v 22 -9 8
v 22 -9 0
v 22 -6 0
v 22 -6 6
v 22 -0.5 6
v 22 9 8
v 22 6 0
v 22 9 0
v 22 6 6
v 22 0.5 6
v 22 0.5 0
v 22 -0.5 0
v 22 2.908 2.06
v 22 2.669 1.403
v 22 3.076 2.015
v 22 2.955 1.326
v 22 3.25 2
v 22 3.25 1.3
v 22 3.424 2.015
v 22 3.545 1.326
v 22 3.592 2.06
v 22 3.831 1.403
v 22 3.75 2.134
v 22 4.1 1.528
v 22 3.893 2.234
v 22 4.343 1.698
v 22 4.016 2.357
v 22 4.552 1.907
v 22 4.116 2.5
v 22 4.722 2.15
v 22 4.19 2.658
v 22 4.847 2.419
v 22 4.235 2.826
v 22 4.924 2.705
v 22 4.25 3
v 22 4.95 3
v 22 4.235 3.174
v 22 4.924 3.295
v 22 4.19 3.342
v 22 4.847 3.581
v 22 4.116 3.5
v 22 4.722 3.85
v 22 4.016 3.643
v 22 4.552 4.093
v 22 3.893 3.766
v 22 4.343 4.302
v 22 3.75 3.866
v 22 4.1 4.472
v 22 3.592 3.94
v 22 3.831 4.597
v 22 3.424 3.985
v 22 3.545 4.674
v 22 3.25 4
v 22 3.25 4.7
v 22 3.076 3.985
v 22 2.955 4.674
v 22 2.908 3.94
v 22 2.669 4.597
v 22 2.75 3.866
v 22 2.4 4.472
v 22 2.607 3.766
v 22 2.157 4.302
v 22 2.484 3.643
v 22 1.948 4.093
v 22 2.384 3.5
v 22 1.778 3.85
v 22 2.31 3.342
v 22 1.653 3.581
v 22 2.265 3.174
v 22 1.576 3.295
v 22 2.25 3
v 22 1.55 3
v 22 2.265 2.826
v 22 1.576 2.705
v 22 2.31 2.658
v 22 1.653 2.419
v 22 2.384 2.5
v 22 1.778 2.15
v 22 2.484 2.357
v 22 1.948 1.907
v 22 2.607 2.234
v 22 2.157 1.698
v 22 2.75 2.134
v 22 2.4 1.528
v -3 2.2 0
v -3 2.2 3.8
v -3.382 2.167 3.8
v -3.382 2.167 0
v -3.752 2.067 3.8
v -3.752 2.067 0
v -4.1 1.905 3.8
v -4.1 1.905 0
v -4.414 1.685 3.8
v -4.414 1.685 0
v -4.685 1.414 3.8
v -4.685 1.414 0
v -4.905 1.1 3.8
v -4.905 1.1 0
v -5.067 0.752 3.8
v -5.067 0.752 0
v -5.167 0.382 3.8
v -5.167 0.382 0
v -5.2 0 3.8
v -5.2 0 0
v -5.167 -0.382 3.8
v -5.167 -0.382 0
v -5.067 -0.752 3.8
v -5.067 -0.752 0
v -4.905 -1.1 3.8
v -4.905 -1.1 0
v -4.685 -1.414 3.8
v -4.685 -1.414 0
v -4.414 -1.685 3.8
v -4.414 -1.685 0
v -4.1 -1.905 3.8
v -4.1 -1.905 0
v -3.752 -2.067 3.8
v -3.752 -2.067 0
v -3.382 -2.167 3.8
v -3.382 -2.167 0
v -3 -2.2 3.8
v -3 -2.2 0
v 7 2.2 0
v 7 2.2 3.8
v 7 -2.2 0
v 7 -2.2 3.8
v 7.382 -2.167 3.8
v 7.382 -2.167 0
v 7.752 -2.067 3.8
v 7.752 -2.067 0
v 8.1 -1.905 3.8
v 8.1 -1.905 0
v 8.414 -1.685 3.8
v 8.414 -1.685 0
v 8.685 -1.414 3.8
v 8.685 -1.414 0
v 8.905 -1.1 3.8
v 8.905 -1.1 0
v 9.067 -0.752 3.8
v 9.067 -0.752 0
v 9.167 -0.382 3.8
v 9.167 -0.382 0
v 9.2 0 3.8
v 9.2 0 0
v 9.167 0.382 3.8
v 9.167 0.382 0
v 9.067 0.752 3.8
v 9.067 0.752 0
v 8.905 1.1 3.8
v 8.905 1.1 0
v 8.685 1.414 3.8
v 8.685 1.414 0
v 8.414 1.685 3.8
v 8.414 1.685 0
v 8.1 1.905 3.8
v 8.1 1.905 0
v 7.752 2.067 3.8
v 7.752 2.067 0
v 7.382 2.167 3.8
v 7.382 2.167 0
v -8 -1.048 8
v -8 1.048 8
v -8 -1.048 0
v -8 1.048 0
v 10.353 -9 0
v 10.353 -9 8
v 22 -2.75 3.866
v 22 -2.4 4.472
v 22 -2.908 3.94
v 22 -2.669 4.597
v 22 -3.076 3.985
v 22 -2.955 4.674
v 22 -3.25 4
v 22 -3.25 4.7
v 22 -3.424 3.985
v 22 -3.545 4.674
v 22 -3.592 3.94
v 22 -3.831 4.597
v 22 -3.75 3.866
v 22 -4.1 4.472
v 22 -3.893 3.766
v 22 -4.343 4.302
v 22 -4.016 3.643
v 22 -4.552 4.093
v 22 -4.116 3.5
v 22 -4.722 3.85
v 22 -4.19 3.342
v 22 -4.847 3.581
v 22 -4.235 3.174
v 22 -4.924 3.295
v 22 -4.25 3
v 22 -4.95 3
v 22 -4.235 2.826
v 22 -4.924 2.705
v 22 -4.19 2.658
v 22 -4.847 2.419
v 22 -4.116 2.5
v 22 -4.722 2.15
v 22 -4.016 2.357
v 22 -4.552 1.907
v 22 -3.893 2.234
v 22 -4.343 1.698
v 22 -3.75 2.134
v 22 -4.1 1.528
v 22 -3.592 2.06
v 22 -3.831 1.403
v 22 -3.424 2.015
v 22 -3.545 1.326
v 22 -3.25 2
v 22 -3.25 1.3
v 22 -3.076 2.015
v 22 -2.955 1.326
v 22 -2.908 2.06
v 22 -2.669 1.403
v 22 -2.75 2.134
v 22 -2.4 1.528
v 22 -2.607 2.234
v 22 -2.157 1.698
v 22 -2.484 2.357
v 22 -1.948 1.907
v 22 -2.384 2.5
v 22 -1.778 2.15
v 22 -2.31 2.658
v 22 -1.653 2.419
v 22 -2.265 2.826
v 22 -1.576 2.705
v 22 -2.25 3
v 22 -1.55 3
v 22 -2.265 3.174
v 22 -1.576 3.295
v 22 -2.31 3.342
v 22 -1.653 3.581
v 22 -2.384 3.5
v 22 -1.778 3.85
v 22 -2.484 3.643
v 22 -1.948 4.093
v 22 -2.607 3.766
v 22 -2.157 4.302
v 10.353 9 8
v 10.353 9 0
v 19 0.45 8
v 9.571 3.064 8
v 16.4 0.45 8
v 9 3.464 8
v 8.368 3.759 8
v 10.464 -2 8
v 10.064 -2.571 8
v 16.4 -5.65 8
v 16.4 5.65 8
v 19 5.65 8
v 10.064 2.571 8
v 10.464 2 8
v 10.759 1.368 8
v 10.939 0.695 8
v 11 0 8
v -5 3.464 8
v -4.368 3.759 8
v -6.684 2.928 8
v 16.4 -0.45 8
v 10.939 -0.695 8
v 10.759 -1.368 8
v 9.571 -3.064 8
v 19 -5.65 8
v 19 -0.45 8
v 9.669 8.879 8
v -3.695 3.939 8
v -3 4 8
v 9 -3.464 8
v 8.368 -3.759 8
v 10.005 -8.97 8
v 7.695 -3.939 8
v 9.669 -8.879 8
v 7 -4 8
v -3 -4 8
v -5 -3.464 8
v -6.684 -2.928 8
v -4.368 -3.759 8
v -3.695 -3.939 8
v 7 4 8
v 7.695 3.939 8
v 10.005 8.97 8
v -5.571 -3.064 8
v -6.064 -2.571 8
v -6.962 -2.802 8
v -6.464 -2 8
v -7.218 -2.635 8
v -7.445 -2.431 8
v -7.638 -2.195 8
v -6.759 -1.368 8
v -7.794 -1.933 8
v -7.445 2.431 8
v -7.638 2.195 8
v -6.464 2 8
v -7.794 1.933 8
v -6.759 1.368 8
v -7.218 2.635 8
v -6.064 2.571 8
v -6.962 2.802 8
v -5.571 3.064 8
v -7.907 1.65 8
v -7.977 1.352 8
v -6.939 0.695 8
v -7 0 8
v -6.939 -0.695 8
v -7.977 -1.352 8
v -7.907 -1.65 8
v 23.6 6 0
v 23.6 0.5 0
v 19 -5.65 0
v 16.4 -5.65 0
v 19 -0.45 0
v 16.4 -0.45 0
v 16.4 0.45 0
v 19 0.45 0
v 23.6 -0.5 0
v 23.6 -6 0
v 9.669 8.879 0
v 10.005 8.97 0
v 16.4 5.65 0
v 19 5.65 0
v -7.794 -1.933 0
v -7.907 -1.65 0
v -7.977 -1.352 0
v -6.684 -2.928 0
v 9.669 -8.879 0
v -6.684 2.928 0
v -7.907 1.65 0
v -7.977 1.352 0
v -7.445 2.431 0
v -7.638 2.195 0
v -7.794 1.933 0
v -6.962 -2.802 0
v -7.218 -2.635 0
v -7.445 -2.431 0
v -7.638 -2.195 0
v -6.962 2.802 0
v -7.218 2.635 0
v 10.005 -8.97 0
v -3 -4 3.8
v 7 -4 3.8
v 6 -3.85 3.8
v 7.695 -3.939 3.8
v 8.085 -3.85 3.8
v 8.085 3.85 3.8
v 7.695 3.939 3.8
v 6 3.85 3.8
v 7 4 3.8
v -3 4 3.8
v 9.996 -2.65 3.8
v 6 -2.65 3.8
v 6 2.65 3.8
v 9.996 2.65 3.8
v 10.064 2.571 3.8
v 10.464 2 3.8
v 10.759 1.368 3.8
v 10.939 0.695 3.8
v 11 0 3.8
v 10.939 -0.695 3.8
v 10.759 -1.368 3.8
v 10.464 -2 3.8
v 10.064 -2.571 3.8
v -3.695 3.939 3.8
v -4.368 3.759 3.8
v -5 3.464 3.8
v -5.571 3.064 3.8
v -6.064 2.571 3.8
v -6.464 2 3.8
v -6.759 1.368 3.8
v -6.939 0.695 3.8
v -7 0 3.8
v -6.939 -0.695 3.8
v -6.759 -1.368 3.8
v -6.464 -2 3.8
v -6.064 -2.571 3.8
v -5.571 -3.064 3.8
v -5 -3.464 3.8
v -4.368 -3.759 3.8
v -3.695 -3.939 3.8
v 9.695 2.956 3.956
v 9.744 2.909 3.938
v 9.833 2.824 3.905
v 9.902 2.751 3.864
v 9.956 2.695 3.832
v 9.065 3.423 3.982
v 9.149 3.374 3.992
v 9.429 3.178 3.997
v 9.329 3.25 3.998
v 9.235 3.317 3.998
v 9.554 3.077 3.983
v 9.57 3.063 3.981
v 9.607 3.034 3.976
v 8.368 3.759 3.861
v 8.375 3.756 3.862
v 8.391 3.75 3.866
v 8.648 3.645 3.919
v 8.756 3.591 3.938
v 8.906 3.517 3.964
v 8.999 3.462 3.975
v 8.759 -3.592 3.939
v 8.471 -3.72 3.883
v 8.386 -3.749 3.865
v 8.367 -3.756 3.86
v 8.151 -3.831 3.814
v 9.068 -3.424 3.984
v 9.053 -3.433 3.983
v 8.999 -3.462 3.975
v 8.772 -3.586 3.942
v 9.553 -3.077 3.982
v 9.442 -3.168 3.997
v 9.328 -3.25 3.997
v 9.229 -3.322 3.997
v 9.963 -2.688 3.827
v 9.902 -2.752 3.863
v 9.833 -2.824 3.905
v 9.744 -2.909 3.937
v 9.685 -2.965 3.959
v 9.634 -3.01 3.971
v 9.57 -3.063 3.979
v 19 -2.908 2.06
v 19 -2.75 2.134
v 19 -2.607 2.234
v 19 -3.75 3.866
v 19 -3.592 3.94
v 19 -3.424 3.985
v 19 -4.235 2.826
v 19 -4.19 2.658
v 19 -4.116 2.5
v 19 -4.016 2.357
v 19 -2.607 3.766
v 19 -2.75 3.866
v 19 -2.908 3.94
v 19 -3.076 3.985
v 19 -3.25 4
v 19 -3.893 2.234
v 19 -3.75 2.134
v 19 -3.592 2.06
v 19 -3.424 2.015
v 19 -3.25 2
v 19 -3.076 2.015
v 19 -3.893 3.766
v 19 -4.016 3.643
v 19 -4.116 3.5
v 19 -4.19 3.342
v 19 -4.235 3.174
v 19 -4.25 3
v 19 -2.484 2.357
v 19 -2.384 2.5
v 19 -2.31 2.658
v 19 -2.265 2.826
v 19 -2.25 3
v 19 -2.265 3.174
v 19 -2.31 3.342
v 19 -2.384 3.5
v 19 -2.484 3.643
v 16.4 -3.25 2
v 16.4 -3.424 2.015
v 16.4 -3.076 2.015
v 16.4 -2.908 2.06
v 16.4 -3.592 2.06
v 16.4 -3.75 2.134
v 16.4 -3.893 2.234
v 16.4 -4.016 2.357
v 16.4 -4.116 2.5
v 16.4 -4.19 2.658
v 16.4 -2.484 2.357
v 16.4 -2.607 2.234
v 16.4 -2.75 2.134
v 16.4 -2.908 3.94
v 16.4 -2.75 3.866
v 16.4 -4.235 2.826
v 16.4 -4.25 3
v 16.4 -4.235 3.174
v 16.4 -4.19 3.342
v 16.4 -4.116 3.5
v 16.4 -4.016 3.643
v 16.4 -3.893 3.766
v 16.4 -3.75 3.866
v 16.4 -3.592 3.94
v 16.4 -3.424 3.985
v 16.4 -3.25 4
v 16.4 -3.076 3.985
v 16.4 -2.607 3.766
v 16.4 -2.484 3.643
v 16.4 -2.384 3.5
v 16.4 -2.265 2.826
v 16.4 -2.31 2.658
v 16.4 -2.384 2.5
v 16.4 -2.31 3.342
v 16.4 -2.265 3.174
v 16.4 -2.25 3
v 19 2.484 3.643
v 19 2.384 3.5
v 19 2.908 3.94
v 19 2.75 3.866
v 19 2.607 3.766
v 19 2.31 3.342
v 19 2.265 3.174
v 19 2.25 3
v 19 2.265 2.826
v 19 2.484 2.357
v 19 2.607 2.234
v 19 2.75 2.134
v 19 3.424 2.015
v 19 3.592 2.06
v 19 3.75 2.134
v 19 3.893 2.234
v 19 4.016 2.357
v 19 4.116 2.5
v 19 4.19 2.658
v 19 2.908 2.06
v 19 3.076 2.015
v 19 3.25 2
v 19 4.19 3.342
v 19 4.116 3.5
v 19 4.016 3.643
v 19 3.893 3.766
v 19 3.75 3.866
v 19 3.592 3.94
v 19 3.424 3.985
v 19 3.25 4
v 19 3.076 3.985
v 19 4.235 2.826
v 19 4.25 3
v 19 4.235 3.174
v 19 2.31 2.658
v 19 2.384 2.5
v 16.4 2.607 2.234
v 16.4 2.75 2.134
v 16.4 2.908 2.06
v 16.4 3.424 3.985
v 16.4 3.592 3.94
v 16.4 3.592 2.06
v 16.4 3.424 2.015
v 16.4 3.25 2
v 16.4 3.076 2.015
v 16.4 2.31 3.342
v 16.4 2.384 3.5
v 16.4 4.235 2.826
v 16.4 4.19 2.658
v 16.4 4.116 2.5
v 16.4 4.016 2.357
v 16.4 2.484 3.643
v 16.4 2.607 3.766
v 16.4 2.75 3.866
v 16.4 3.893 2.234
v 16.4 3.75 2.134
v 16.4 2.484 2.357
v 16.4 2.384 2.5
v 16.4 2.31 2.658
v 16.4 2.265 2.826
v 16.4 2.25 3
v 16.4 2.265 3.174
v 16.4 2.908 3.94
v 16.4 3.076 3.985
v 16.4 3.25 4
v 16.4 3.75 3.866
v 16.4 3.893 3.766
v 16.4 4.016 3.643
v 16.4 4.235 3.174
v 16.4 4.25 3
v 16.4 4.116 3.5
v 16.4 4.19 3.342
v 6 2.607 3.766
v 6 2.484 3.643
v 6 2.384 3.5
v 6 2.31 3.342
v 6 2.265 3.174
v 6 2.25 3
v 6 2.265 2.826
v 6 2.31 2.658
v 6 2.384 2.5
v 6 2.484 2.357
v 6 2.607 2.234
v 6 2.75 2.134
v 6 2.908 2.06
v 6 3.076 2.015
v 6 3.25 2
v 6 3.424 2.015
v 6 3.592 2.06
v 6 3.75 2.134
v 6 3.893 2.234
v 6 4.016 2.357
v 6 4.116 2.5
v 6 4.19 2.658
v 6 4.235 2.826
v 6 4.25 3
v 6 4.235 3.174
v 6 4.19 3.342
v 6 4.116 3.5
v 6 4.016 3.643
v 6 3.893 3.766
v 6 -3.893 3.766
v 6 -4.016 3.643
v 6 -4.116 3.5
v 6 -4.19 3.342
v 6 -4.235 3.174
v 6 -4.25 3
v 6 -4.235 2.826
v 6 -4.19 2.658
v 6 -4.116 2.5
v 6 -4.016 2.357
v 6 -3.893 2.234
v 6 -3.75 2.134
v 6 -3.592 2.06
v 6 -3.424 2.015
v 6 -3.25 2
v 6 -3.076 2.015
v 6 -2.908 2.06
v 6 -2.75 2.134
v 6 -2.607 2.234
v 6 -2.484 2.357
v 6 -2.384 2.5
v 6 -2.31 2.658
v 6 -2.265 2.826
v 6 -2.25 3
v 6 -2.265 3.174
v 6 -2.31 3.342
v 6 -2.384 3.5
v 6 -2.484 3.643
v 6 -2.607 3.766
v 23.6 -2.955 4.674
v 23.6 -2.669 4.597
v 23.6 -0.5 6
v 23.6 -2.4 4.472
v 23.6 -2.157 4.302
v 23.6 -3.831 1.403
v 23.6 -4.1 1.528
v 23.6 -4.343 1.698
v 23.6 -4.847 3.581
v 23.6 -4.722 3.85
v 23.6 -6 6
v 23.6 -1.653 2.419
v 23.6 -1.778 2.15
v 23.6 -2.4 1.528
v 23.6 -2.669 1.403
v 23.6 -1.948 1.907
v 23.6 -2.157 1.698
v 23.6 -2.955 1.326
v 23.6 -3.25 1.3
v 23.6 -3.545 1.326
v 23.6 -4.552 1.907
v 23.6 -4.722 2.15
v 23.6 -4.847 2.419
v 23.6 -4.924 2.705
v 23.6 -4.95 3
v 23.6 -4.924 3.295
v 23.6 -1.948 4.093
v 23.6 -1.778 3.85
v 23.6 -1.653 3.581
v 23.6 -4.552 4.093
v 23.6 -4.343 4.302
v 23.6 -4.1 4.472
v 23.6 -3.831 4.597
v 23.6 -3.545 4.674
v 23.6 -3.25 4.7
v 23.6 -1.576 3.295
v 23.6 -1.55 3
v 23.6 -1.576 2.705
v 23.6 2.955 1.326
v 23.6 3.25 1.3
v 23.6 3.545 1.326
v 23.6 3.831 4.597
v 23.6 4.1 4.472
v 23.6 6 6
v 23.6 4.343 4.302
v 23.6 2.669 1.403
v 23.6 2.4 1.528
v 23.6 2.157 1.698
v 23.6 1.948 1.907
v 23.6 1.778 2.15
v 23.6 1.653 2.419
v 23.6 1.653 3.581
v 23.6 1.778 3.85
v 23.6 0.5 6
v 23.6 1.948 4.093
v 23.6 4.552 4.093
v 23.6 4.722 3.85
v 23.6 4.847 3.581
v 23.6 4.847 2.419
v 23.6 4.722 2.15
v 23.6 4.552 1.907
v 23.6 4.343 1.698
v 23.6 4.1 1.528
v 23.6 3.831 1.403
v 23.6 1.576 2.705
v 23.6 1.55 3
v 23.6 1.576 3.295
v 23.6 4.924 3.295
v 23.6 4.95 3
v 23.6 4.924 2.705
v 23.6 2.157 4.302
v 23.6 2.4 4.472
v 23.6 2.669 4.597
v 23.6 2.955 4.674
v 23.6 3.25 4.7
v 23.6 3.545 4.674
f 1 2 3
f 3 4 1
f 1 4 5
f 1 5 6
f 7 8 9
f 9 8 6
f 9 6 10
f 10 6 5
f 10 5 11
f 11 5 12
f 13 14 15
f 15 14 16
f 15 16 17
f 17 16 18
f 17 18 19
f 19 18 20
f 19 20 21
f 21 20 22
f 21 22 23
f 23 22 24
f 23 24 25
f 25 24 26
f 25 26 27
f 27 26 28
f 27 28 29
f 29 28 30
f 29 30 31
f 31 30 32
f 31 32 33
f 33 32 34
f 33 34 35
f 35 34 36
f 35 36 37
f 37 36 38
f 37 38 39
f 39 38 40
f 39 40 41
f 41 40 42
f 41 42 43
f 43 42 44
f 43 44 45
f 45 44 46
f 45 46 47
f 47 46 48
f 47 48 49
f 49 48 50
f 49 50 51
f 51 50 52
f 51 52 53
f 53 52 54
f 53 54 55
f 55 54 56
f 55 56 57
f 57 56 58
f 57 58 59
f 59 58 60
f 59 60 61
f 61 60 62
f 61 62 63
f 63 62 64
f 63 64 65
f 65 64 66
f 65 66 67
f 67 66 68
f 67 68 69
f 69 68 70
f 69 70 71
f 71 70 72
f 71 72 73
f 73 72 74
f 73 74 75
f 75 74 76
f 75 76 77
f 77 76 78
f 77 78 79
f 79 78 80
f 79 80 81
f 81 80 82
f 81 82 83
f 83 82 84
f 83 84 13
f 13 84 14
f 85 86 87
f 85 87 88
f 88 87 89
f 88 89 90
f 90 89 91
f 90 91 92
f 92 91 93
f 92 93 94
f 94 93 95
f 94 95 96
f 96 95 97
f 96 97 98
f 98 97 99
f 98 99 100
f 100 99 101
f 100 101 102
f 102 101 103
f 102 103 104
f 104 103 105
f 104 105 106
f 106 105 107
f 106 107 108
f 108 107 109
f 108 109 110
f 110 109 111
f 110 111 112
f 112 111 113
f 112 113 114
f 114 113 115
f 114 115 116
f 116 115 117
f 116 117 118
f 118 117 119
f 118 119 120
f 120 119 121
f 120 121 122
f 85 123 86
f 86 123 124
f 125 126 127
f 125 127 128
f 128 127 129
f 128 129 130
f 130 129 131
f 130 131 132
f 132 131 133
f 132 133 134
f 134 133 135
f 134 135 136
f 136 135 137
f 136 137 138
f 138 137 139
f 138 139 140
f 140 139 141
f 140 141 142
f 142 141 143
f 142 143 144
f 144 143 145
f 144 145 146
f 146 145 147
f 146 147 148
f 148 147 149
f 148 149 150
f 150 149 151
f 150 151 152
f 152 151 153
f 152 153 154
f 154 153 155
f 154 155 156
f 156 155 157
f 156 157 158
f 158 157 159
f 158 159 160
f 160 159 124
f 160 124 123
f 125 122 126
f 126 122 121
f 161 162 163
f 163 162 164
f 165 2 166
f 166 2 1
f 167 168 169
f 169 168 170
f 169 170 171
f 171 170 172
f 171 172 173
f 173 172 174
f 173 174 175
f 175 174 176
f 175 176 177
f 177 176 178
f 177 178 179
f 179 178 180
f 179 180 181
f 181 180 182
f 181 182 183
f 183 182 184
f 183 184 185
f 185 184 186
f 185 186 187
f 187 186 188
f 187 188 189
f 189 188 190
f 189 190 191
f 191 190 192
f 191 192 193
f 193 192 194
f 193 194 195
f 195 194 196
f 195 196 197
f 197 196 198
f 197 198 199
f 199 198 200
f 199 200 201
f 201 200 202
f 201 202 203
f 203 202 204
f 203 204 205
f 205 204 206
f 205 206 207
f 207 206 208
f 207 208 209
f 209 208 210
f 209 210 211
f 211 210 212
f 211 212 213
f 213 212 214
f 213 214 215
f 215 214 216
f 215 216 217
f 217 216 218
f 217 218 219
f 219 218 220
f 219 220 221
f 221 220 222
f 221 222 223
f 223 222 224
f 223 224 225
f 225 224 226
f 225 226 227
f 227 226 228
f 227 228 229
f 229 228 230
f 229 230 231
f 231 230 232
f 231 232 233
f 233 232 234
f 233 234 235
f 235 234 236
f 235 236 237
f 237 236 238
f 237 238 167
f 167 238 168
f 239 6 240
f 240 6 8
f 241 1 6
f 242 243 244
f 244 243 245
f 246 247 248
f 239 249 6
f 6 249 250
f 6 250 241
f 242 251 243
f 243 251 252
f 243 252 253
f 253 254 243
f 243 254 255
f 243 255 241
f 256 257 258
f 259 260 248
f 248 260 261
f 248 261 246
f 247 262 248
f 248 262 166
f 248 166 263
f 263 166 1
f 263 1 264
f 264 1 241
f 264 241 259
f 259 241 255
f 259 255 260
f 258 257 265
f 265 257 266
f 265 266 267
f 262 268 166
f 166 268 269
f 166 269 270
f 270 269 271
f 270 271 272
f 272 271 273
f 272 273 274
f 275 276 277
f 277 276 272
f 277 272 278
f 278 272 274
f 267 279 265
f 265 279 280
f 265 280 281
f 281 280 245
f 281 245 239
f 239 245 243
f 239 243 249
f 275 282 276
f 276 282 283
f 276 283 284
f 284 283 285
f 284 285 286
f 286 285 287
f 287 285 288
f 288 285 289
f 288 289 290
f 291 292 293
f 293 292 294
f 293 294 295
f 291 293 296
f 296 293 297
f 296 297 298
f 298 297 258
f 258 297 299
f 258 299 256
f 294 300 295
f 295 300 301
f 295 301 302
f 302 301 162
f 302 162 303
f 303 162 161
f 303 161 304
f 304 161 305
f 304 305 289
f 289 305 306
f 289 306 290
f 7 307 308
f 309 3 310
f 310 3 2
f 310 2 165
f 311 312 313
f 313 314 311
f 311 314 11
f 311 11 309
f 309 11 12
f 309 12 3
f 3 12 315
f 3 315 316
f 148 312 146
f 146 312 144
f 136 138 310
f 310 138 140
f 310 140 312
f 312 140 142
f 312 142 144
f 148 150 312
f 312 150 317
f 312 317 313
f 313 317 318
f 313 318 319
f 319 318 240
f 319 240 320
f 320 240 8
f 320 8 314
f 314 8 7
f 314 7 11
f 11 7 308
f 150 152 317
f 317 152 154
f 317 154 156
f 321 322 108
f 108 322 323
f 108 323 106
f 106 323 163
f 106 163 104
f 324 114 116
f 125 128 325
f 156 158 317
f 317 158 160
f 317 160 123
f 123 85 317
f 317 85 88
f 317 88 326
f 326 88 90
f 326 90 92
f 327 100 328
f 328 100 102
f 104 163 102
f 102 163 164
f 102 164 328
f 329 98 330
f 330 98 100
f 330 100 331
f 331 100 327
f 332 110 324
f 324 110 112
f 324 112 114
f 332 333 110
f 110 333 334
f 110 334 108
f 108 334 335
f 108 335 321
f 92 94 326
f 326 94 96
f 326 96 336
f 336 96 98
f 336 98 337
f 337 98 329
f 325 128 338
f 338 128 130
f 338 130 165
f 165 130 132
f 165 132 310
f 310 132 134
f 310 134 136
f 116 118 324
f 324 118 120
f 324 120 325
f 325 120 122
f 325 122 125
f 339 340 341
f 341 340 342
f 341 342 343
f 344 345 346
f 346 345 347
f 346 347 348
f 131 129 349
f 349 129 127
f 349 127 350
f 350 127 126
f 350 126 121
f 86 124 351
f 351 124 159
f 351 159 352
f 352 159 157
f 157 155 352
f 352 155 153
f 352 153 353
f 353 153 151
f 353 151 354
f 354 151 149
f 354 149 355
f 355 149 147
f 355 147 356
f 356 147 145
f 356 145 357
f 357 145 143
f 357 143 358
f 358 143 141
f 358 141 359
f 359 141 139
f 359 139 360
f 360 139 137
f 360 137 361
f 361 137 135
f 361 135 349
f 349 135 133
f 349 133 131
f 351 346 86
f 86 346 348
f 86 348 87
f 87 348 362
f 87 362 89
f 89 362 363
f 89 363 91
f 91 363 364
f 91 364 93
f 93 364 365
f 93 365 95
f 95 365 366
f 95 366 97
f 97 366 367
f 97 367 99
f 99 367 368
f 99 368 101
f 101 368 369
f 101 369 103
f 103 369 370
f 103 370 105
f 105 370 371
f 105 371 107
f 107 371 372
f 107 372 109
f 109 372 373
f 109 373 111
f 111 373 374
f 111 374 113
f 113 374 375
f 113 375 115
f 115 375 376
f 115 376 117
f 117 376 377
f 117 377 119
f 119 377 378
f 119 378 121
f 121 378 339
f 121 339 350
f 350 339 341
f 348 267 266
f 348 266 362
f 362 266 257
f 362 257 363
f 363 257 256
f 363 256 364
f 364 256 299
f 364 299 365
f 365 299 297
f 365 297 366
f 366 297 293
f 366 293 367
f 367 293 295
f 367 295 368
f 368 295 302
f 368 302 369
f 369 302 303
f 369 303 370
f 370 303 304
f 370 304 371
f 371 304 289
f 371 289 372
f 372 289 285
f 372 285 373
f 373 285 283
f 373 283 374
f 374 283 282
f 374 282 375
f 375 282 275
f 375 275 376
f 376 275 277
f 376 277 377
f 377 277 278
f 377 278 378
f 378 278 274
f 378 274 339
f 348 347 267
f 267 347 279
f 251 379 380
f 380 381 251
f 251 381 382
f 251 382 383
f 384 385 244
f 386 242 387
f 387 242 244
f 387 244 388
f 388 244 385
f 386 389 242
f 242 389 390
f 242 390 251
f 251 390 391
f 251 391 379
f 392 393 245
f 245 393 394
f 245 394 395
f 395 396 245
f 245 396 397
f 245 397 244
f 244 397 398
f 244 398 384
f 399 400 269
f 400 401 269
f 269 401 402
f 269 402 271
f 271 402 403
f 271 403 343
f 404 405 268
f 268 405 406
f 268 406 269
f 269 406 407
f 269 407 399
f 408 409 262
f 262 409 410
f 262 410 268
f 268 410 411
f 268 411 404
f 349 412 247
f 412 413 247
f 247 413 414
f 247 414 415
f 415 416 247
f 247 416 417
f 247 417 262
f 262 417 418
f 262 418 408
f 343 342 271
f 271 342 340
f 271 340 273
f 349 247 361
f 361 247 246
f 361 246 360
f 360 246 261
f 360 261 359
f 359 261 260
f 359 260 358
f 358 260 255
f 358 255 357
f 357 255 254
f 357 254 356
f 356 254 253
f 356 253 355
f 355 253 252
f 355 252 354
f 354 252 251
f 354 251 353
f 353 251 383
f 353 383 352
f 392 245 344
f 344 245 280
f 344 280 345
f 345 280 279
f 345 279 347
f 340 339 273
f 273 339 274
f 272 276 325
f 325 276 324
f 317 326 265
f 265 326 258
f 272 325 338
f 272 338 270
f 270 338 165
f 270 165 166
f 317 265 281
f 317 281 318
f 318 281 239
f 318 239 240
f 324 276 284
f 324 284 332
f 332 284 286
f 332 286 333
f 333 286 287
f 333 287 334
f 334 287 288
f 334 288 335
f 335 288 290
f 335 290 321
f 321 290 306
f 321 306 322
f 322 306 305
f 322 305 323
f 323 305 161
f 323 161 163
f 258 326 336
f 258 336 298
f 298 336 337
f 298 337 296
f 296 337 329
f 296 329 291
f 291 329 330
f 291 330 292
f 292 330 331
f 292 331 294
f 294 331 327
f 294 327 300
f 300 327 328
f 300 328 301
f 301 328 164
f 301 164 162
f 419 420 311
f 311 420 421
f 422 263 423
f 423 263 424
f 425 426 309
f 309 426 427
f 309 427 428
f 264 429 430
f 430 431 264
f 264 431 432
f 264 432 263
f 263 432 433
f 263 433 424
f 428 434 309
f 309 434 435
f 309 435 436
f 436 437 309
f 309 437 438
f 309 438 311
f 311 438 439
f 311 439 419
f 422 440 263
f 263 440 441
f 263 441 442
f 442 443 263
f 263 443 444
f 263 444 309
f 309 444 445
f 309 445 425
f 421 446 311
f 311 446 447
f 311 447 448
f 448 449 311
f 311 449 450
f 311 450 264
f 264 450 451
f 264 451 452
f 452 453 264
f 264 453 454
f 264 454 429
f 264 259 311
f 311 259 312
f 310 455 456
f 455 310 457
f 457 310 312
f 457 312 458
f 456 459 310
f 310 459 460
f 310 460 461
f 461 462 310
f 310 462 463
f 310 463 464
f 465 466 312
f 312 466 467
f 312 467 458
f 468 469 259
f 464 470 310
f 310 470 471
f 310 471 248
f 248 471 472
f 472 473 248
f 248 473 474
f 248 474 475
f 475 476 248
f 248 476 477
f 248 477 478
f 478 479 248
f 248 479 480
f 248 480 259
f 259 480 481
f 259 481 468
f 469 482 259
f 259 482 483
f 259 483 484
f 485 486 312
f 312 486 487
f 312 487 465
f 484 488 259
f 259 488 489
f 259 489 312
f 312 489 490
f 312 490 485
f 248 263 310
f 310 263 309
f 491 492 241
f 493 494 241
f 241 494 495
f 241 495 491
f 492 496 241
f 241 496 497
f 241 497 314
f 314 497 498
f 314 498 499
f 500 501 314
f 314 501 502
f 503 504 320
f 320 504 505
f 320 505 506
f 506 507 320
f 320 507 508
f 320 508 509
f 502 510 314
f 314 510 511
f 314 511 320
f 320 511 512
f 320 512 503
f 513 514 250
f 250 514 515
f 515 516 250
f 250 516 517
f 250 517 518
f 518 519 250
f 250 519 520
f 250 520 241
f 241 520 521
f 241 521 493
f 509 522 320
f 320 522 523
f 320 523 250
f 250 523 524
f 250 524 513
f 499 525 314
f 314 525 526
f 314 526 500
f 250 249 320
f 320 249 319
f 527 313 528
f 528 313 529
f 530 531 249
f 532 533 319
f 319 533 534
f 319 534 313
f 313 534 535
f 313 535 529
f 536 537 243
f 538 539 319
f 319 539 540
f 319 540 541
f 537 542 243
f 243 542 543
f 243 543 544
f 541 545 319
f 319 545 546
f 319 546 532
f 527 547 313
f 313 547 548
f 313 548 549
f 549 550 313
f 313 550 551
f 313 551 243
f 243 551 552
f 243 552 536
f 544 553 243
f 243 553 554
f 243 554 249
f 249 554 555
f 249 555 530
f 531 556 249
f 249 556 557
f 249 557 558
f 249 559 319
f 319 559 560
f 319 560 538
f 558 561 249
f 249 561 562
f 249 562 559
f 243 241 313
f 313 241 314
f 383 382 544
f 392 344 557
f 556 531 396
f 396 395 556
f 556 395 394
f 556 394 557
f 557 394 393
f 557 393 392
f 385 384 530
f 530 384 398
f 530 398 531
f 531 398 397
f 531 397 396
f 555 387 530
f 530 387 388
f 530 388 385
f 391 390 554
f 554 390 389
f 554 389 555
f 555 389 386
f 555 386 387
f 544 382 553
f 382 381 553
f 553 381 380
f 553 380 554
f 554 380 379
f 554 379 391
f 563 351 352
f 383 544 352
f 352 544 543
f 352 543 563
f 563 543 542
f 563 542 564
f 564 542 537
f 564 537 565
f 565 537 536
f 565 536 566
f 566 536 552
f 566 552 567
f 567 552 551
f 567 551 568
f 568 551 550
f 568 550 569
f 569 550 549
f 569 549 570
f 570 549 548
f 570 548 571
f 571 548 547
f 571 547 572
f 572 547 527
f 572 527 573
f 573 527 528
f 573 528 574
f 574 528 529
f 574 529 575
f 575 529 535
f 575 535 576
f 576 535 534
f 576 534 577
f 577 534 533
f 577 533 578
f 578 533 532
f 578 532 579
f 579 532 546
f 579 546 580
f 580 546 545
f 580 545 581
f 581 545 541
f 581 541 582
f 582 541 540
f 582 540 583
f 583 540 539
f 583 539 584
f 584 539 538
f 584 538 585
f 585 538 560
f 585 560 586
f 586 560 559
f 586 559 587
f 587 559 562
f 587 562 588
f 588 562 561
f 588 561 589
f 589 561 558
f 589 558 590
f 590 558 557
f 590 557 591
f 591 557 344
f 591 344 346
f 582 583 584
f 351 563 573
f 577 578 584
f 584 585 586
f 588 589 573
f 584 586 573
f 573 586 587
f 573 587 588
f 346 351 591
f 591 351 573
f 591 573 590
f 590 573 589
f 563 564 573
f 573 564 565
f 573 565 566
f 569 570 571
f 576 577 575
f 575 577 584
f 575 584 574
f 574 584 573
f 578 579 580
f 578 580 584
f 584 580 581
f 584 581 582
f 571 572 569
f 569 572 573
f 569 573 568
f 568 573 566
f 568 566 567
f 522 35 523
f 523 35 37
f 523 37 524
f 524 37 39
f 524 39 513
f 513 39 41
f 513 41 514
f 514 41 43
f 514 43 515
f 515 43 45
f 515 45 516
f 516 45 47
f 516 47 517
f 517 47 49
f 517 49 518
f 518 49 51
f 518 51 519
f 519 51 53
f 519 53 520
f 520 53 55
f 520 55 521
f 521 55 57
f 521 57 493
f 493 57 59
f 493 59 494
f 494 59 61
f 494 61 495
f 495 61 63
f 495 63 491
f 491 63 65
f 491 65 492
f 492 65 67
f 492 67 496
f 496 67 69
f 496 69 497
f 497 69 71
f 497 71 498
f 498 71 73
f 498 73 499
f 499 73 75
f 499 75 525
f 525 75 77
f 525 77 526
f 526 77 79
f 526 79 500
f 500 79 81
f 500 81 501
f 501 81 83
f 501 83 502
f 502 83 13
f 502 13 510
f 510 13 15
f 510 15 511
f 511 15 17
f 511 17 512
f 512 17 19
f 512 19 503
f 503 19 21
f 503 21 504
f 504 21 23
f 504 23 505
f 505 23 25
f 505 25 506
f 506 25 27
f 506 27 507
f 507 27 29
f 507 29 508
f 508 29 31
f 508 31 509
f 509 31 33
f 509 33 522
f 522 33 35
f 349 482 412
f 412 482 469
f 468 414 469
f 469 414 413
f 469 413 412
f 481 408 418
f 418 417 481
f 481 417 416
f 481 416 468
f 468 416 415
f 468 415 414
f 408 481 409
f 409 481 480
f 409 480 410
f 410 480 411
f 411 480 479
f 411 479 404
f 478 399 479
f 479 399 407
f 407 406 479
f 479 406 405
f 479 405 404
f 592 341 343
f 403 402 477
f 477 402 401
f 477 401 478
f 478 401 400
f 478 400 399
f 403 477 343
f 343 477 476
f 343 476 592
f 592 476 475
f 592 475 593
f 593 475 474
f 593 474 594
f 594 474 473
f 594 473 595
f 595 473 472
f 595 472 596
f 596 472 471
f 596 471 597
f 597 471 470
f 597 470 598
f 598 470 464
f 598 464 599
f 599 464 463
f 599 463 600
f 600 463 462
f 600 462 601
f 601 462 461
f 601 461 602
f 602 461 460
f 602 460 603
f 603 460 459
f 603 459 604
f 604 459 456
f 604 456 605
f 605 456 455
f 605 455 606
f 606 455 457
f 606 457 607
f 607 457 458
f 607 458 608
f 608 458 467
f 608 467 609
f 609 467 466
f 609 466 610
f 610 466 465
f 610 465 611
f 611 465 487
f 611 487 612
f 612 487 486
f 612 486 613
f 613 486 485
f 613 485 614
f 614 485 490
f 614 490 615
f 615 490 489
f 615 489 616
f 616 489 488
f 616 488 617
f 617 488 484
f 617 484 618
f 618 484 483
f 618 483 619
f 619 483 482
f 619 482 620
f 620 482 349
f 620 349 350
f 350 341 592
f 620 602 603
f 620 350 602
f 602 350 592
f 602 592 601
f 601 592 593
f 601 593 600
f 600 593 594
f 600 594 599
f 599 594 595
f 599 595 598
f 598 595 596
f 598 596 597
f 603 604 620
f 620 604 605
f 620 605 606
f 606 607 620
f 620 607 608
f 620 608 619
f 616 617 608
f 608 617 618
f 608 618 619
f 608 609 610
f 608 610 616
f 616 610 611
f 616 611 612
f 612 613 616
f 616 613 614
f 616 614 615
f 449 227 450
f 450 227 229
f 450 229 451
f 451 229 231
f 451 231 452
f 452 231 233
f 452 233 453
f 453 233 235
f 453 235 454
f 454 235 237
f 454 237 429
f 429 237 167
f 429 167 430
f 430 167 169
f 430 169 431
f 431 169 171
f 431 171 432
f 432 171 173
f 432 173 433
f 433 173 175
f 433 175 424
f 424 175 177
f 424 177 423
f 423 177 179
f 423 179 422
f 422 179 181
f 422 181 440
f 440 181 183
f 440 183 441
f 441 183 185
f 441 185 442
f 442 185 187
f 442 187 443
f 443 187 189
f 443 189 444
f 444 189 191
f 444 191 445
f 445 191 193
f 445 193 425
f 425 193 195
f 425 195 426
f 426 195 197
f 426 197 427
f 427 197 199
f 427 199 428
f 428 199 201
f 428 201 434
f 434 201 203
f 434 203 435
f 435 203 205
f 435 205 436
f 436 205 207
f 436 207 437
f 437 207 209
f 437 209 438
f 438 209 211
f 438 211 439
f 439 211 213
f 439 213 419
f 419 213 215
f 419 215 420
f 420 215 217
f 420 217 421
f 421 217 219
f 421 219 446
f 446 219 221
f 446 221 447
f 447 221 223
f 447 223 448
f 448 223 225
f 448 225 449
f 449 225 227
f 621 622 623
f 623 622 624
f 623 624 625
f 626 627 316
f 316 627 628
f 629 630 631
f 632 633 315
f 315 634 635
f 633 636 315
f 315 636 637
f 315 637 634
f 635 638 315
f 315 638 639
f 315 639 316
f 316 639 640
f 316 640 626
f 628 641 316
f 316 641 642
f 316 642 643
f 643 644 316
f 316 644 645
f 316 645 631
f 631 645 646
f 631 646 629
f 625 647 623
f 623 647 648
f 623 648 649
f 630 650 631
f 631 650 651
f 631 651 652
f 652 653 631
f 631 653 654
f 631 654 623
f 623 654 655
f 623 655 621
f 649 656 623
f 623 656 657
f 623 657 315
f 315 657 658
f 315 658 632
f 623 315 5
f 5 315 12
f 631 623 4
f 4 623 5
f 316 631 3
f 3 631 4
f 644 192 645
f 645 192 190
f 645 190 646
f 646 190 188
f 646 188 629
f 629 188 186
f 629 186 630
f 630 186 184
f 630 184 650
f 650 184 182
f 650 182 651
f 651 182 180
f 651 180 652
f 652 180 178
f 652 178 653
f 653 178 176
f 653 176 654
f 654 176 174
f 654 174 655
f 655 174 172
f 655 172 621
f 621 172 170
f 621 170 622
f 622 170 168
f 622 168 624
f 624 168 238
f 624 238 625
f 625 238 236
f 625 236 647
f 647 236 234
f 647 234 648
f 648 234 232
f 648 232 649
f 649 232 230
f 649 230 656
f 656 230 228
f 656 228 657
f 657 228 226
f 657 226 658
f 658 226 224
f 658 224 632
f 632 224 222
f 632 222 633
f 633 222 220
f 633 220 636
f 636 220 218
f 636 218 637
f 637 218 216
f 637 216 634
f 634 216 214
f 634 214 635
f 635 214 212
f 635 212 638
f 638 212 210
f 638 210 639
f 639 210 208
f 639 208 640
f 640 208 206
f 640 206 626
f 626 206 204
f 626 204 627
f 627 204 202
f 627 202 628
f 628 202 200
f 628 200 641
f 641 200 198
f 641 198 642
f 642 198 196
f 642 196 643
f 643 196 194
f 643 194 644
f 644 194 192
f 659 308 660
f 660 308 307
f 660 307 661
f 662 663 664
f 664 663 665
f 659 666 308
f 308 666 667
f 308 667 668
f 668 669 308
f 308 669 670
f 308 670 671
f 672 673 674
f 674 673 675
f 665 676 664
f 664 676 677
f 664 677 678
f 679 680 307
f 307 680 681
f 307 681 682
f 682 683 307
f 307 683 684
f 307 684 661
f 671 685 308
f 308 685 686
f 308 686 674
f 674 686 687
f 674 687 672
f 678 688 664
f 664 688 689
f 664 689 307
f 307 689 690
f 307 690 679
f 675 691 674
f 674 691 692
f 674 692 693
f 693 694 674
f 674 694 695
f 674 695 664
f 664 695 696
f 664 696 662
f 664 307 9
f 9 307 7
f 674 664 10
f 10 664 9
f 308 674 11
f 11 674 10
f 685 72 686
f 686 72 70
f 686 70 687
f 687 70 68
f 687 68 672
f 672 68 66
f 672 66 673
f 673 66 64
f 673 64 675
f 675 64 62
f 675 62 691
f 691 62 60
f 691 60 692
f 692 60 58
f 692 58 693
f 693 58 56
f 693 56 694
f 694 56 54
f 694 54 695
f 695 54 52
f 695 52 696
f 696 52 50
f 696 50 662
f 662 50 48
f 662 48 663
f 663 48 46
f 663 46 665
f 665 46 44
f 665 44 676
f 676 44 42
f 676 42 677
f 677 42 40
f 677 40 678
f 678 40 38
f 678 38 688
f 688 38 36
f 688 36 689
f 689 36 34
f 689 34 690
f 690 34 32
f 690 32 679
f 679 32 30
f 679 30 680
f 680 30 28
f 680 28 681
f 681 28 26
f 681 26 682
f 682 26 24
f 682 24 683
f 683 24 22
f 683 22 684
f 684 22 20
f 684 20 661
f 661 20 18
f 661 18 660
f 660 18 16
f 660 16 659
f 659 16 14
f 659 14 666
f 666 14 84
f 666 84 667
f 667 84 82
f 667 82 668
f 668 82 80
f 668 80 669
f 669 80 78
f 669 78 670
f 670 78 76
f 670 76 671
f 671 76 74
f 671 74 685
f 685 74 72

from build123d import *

# Parameters (mm, degrees)
ESQUISSE1_W             = 30
ESQUISSE1_H             = 18
BOSS_EXTRU_1_DEPTH      = 8
ENL_V_MAT_EXTRU_1_DEPTH = 9
ENL_V_MAT_EXTRU_2_DEPTH = 4.2
CHANFREIN1_SIZE         = 18
CHANFREIN1_SIZE2        = 6.551464217
CHANFREIN1_PART_2_SIZE  = 18
CHANFREIN1_PART_2_SIZE2 = 6.551464217
CONG_1_R                = 2
ESQUISSE4_W             = 2.6
ESQUISSE4_H             = 5.2
ENL_V_MAT_EXTRU_3_DEPTH = 9
ESQUISSE5_R             = 1
ENL_V_MAT_EXTRU_4_DEPTH = 16
ESQUISSE6_W             = 6
ESQUISSE6_H             = 5.5
ESQUISSE6_R             = 1.7
BOSS_EXTRU_2_DEPTH      = 1.6


with BuildPart() as part:
    # Esquisse1 → Boss.-Extru.1 (new body)
    with BuildSketch(Plane.XY):
        with Locations((7, 0)):
            Rectangle(ESQUISSE1_W, ESQUISSE1_H)
    extrude(amount=BOSS_EXTRU_1_DEPTH)

    # Esquisse2 → Enlèv. mat.-Extru.1 (cut, through all)
    with BuildSketch(Plane.XY.offset(8)):
        with BuildLine():
            Line((-3, 2.2), (7, 2.2))
            ThreePointArc((7, 2.2), (9.2, 0), (7, -2.2))
            Line((7, -2.2), (-3, -2.2))
            ThreePointArc((-3, -2.2), (-5.2, 0), (-3, 2.2))
        make_face()
    extrude(amount=-ENL_V_MAT_EXTRU_1_DEPTH, mode=Mode.SUBTRACT)

    # Esquisse3 → Enlèv. mat.-Extru.2 (cut)
    with BuildSketch(Plane.XY.offset(8)):
        with BuildLine():
            Line((-3, 4), (7, 4))
            ThreePointArc((7, 4), (11, 0), (7, -4))
            Line((7, -4), (-3, -4))
            ThreePointArc((-3, -4), (-7, 0), (-3, 4))
        make_face()
    extrude(amount=-ENL_V_MAT_EXTRU_2_DEPTH, mode=Mode.SUBTRACT)

    # Chanfrein1
    chanfrein1_edges = [part.edges().sort_by_distance(p)[0] for p in [
        (-8, 9, 4),
    ]]
    chanfrein1_side = [part.faces().sort_by_distance(p)[0] for p in [
        (7, 9, 4),
    ]]
    chamfer(chanfrein1_edges, length=CHANFREIN1_SIZE, length2=CHANFREIN1_SIZE2, reference=chanfrein1_side[0])

    # Chanfrein1 part 2
    chanfrein1_part_2_edges = [part.edges().sort_by_distance(p)[0] for p in [
        (-8, -9, 4),
    ]]
    chanfrein1_part_2_side = [part.faces().sort_by_distance(p)[0] for p in [
        (7, -9, 4),
    ]]
    chamfer(chanfrein1_part_2_edges, length=CHANFREIN1_PART_2_SIZE, length2=CHANFREIN1_PART_2_SIZE2, reference=chanfrein1_part_2_side[0])

    # Congé1
    cong_1_edges = [part.edges().sort_by_distance(p)[0] for p in [
        (10, -9, 4),
        (-8, 2.448535783, 4),
        (-8, -2.448535783, 4),
        (10, 9, 4),
    ]]
    fillet(cong_1_edges, radius=CONG_1_R)

    # Esquisse4 → Enlèv. mat.-Extru.3 (cut, through all)
    with BuildSketch(Plane(origin=(0, 0, 0), x_dir=(-1, 0, 0), z_dir=(0, 0, -1))):
        with Locations((-17.7, -3.05)):
            Rectangle(ESQUISSE4_W, ESQUISSE4_H)
        with Locations((-17.7, 3.05)):
            Rectangle(ESQUISSE4_W, ESQUISSE4_H)
    extrude(amount=-ENL_V_MAT_EXTRU_3_DEPTH, mode=Mode.SUBTRACT)

    # Esquisse5 → Enlèv. mat.-Extru.4 (cut)
    with BuildSketch(Plane(origin=(22, 0, 0), x_dir=(0, 0, -1), z_dir=(1, 0, 0))):
        with Locations((-3, 3.25)):
            Circle(ESQUISSE5_R)
        with Locations((-3, -3.25)):
            Circle(ESQUISSE5_R)
    extrude(amount=-ENL_V_MAT_EXTRU_4_DEPTH, mode=Mode.SUBTRACT)

    # Esquisse6 → Boss.-Extru.2 (add)
    with BuildSketch(Plane(origin=(22, 0, 0), x_dir=(0, 0, -1), z_dir=(1, 0, 0))):
        with Locations((-3, -3.25)):
            Rectangle(ESQUISSE6_W, ESQUISSE6_H)
        with Locations((-3, -3.25)):
            Circle(ESQUISSE6_R, mode=Mode.SUBTRACT)
        with Locations((-3, 3.25)):
            Rectangle(ESQUISSE6_W, ESQUISSE6_H)
        with Locations((-3, 3.25)):
            Circle(ESQUISSE6_R, mode=Mode.SUBTRACT)
    extrude(amount=BOSS_EXTRU_2_DEPTH)


solid = part.part
